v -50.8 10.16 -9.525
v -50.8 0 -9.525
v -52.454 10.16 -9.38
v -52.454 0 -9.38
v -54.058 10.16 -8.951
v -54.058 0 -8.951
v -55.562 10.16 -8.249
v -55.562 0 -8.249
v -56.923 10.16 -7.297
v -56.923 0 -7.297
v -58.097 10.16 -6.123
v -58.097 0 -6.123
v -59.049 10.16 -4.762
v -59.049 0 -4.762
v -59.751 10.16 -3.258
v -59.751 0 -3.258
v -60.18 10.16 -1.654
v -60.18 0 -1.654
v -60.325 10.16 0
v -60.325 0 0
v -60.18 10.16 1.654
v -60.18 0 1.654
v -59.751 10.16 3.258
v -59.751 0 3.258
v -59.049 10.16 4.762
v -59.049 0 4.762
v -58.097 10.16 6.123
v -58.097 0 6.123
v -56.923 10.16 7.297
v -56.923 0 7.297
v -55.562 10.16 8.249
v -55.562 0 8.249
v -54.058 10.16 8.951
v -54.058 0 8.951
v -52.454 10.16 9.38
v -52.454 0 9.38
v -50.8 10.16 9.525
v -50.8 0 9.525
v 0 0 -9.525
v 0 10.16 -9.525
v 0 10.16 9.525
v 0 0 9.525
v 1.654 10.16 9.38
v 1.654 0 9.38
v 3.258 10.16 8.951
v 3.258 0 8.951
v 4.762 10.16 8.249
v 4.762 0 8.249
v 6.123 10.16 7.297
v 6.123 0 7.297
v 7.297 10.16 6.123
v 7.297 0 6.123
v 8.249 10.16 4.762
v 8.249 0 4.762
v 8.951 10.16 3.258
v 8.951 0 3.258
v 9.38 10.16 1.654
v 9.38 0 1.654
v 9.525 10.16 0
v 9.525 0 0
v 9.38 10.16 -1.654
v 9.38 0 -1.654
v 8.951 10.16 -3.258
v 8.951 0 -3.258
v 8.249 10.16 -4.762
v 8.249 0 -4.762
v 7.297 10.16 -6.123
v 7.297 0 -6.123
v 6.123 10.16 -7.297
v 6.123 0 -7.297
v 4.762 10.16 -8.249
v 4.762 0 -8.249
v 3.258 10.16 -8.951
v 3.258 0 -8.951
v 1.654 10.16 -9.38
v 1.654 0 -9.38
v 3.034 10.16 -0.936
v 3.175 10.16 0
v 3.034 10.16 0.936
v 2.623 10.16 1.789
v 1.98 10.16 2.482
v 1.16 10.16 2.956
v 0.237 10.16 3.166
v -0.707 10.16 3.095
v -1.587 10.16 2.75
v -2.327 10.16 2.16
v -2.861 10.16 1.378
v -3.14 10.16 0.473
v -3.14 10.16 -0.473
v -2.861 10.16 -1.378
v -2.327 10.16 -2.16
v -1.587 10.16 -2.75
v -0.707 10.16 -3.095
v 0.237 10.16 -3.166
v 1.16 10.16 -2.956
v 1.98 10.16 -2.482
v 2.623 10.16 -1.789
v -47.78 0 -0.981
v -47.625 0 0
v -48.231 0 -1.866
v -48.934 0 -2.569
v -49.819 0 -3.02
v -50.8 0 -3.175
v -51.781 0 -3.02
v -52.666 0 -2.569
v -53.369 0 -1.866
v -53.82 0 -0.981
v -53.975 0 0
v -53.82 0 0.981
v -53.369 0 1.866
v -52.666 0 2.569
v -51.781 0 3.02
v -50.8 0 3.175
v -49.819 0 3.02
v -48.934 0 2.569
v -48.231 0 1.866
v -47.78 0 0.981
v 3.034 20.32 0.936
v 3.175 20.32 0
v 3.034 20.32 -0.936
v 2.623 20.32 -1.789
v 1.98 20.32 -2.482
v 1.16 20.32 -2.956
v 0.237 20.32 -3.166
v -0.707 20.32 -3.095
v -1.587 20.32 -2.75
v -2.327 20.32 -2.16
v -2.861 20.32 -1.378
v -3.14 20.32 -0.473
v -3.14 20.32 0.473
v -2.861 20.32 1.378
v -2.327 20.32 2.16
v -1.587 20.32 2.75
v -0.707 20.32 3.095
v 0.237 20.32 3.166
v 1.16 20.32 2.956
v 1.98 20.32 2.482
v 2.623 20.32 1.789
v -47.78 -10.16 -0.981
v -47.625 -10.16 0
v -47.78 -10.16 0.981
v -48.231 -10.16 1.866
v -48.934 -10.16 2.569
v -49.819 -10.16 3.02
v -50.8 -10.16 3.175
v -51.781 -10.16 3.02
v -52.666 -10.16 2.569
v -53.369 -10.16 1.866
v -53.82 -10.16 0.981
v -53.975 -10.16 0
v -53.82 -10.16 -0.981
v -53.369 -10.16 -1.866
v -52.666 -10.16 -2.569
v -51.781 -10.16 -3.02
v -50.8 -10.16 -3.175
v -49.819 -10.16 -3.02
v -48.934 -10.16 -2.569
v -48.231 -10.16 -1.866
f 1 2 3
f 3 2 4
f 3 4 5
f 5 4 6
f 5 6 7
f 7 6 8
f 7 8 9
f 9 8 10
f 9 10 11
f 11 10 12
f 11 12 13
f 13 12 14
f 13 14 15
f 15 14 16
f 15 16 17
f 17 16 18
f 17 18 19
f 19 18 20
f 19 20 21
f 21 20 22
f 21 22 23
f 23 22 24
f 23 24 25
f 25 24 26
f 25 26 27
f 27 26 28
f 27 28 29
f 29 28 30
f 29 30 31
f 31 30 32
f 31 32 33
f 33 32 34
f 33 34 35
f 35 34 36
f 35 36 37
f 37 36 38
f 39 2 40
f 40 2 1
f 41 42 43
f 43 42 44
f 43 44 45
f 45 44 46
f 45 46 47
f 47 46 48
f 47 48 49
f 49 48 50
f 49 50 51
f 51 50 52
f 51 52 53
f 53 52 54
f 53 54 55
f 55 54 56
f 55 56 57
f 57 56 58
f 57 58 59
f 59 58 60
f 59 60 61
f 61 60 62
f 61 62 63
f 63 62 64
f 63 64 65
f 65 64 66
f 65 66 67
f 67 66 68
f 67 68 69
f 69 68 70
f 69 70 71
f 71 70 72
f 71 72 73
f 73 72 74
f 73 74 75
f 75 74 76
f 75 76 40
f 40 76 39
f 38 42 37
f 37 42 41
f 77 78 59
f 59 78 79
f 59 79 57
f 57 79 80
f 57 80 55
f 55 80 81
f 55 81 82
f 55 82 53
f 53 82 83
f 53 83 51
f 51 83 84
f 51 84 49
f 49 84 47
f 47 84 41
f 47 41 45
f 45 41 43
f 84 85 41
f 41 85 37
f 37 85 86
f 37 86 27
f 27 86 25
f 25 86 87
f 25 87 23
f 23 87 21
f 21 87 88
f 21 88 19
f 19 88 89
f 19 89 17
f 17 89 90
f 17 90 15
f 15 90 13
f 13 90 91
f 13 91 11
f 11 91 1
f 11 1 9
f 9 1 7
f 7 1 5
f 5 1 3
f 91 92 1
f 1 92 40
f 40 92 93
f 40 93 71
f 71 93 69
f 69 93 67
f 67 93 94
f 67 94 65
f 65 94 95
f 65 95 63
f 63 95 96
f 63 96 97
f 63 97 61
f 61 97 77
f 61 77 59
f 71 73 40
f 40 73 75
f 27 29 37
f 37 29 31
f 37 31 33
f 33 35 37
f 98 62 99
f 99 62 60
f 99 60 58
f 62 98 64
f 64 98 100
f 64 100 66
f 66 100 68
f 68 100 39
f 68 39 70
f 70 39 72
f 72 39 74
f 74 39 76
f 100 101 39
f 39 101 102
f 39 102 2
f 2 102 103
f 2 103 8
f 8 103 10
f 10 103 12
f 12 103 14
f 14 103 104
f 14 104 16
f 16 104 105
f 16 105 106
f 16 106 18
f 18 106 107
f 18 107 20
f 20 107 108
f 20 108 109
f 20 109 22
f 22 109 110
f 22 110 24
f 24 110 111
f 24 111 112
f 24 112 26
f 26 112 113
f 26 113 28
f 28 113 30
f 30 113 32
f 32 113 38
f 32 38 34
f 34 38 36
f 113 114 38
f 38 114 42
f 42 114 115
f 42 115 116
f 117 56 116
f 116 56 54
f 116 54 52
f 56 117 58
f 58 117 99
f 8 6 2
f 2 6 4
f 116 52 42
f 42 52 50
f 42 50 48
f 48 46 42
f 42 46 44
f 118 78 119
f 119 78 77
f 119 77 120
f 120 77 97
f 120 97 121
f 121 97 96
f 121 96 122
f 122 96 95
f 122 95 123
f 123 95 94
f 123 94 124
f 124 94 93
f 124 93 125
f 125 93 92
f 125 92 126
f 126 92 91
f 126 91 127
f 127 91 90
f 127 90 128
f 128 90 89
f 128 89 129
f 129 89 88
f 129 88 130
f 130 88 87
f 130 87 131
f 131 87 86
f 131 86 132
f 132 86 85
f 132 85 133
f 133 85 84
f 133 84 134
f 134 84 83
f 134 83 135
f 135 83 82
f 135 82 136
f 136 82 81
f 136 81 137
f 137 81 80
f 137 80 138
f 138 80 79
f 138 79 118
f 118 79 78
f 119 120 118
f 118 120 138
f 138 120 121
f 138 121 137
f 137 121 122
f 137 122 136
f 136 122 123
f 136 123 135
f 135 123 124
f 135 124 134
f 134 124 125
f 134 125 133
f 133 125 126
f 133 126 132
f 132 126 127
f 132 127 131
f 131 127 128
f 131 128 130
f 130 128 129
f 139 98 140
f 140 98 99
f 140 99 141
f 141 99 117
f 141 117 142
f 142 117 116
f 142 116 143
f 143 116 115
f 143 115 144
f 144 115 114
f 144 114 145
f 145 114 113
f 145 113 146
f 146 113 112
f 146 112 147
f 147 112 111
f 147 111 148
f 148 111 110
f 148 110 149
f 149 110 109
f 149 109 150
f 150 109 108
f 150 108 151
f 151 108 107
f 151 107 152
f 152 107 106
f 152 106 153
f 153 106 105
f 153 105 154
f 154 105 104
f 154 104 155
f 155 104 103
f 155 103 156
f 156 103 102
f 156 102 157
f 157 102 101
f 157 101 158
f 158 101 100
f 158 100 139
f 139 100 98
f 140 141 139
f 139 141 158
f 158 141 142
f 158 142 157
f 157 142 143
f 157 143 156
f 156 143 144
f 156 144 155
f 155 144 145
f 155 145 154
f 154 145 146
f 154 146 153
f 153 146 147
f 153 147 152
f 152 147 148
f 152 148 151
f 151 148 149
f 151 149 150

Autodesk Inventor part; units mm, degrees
ref_plane "YZ Plane" through (0, 0, 0) normal (1, 0, 0) x (0, 1, 0)
ref_plane "XZ Plane" through (0, 0, 0) normal (0, 1, 0) x (-1, 0, 0)
ref_plane "XY Plane" through (0, 0, 0) normal (0, 0, 1) x (1, 0, 0)
sketch "Sketch1" plane through (0, 0, 0) normal (0, 1, 0) x (-1, 0, 0)
  line L0 (0, 0) -> (50.8, 0) construction
  arc A0 (0, 9.525) -> (0, -9.525) centre (0, 0) ccw
  line L1 (0, -9.525) -> (50.8, -9.525)
  line L2 (0, 9.525) -> (50.8, 9.525)
  circle A1 centre (50.8, 0) radius 9.525
  dimension "d1" = 50.8
  dimension "d4" = 19.05
  dimension "d14" = 50.8
  dimension "d15" = 50.8
  dimension "d16" = 19.05
extrude "Extrusion1" add sketch "Sketch1" along normal blind 10.16
sketch "Sketch4" plane through (0, 10.16, 0) normal (0, 1, 0) x (1, 0, 0)
  circle A0 centre (0, 0) radius 3.175
  dimension "d17" = 6.35
extrude "Extrusion4" add sketch "Sketch4" along normal blind 10.16
sketch "Sketch5" plane through (0, 0, 0) normal (0, -1, 0) x (1, 0, 0)
  circle A0 centre (-50.8, 0) radius 3.175
  arc A1 (-50.8, 9.525) -> (-50.8, -9.525) centre (-50.8, 0) ccw projected
  point P0 (0, 0)
  dimension "d20" = 6.35
extrude "Extrusion5" add sketch "Sketch5" along normal blind 10.16
properties part number "Connecting_bar"
